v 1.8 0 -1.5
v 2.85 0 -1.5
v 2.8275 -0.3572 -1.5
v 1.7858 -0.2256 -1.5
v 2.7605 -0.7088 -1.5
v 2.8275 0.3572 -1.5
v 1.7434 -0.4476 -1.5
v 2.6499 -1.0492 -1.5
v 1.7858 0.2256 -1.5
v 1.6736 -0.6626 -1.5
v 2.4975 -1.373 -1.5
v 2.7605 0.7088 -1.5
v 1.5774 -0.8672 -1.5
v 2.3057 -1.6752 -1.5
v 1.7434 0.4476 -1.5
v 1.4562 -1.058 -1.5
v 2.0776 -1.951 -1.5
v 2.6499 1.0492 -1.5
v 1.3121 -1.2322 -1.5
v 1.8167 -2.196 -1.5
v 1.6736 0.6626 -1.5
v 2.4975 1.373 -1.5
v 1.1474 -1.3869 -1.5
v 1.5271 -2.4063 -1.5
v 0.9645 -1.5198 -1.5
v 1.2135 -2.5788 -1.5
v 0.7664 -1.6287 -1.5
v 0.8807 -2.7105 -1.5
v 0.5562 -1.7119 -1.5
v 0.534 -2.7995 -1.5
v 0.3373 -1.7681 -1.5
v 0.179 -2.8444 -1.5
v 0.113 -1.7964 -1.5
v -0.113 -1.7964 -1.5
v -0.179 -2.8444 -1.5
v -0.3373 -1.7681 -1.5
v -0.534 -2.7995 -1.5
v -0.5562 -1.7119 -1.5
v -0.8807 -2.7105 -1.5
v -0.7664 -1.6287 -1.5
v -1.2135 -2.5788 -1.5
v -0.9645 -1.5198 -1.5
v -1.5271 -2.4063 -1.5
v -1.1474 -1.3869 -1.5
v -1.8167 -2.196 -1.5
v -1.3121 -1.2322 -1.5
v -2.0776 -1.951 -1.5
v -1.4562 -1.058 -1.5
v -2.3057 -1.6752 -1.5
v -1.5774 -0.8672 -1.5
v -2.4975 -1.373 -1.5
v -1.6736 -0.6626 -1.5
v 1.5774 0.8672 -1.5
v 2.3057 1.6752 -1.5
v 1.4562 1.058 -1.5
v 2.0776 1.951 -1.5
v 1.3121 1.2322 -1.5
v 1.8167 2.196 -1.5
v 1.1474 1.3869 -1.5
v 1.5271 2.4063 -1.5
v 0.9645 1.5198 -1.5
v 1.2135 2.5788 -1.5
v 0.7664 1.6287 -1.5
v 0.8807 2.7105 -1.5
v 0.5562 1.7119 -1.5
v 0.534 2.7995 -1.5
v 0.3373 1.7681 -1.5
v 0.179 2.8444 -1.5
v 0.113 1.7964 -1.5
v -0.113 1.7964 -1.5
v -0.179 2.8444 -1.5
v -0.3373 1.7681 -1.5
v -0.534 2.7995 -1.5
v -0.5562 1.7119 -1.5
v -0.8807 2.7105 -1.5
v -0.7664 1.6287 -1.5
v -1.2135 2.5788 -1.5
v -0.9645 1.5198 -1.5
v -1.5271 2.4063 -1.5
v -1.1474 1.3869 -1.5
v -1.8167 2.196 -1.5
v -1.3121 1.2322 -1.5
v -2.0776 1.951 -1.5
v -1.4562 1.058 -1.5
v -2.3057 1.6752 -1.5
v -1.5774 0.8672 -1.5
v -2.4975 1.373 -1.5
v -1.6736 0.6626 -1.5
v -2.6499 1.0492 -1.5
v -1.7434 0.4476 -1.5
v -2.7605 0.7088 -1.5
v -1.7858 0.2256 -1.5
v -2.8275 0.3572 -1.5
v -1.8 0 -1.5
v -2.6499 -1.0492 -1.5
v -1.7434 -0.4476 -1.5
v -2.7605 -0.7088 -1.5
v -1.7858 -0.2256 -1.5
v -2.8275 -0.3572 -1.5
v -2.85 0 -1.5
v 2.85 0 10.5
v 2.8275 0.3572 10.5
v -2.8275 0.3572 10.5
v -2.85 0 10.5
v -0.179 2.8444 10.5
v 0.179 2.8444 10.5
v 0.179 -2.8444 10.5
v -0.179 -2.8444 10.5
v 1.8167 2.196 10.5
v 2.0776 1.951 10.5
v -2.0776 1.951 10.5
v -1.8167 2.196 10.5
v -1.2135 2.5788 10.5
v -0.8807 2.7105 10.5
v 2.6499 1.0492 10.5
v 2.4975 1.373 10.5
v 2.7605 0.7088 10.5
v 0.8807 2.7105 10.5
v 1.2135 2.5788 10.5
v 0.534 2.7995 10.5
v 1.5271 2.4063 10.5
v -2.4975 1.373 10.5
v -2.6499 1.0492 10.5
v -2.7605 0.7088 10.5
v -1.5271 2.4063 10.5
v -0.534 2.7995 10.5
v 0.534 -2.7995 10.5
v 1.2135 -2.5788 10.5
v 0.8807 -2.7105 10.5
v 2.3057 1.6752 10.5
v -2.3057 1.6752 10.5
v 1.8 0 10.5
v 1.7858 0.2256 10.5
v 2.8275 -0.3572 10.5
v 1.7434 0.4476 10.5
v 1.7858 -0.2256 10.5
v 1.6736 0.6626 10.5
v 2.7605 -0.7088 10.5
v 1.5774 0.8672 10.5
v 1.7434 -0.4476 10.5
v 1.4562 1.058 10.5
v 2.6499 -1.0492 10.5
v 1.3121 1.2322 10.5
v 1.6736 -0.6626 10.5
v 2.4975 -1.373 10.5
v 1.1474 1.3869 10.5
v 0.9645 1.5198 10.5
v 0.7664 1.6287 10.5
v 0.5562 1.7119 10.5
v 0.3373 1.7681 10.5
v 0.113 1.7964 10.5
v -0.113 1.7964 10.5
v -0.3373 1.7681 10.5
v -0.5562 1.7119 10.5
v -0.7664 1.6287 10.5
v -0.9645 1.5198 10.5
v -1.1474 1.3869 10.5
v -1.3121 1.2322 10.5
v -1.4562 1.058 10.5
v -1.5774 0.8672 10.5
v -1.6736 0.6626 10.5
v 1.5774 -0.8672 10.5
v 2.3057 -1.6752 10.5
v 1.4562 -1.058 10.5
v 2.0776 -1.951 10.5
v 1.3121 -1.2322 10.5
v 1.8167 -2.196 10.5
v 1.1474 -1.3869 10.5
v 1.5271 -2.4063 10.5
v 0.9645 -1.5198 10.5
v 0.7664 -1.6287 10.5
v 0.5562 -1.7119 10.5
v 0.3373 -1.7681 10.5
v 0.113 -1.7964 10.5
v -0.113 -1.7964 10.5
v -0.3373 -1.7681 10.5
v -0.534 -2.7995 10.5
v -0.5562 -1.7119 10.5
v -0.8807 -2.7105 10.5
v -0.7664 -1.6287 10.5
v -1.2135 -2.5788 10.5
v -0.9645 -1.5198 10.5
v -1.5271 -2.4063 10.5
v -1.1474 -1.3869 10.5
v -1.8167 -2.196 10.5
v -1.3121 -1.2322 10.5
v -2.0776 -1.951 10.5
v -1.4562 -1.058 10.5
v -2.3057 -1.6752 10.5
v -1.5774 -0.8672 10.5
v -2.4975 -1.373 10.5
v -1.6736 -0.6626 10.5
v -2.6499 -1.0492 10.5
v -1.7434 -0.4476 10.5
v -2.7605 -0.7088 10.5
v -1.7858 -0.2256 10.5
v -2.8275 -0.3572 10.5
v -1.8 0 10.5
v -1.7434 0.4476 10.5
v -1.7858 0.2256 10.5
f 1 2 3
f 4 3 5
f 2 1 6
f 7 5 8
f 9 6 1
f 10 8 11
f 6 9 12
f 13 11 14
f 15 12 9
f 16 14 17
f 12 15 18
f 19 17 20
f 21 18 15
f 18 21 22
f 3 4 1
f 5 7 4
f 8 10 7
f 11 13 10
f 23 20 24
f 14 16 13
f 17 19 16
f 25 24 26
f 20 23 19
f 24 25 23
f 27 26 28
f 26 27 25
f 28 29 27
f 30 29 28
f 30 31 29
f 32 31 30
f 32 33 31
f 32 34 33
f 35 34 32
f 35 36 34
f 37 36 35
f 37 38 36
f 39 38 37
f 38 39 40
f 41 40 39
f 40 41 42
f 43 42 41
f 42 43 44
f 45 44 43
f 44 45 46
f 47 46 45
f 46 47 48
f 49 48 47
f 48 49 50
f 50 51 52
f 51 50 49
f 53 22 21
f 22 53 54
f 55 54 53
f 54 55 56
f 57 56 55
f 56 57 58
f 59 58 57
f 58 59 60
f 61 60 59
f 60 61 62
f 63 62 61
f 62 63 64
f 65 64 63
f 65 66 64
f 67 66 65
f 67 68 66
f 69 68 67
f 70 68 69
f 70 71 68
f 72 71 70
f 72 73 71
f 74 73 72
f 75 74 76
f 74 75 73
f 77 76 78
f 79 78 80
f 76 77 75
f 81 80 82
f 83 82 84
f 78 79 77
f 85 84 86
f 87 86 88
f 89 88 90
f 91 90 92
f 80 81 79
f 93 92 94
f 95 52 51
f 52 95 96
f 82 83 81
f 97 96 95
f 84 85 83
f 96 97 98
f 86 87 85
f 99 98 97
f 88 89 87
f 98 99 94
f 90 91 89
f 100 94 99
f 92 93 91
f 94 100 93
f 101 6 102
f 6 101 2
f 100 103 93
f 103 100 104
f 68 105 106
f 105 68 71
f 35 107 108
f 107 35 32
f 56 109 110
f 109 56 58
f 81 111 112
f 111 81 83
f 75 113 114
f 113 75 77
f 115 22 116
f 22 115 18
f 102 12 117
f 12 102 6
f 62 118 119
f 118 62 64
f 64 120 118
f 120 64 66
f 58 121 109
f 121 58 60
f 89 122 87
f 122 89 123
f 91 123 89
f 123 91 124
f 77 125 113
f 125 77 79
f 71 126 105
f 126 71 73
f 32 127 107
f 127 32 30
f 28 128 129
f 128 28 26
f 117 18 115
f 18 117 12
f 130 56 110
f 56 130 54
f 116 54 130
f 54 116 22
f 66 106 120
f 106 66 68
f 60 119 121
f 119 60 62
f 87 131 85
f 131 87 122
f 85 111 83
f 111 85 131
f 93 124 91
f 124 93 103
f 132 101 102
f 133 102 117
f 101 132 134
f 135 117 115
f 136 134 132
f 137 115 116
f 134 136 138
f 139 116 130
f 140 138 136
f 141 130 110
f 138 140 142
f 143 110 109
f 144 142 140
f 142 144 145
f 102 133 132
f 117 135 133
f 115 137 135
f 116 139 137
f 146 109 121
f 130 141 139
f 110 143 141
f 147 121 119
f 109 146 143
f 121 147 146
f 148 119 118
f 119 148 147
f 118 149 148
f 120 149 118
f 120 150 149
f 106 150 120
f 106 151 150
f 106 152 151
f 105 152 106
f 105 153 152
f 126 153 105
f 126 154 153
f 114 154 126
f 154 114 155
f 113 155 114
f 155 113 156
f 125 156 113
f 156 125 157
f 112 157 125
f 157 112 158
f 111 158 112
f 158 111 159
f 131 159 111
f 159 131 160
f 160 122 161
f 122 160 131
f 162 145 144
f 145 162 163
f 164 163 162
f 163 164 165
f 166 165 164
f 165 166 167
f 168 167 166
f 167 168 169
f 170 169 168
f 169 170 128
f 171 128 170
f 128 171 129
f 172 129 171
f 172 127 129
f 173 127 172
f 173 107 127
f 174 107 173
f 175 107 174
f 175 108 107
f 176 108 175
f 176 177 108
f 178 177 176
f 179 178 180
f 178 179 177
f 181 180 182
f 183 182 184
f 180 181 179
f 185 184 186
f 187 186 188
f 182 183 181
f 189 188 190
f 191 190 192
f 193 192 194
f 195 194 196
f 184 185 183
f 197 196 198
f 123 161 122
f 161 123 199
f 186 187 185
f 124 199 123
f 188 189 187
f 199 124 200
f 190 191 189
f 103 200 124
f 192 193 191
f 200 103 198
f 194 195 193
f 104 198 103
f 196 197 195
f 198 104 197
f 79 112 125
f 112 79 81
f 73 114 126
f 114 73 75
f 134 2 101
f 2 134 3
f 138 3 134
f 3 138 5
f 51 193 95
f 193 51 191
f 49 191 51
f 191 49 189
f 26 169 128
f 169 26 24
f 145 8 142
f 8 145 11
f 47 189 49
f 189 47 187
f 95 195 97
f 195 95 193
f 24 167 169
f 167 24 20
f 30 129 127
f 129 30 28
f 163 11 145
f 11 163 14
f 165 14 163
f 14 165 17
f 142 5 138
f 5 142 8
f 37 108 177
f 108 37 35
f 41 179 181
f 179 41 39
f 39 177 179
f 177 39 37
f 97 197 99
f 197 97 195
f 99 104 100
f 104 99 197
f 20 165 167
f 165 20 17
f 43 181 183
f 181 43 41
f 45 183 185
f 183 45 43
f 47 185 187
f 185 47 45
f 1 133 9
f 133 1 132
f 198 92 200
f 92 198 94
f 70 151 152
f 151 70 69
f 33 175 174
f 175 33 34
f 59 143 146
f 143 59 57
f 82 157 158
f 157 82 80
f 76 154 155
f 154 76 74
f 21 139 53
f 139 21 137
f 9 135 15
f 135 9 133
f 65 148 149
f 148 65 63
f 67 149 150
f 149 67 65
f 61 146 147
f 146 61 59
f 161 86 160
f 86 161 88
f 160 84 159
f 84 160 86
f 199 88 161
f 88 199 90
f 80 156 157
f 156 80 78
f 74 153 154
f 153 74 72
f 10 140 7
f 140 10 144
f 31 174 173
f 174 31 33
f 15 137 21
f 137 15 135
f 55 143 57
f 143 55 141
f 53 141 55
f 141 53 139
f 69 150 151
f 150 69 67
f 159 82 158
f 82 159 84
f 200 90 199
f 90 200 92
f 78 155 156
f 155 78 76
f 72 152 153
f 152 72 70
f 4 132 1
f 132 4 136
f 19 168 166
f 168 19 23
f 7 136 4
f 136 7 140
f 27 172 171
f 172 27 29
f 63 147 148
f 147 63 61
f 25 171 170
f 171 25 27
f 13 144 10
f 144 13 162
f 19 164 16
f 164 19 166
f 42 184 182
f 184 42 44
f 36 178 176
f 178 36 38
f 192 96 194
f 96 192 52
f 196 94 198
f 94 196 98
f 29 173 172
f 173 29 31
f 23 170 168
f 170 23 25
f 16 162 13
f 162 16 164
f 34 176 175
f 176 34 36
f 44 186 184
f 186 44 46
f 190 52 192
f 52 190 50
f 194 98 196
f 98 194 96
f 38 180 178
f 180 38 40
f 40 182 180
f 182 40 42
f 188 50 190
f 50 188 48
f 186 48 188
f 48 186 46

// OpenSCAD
$fn = 50;


difference() {
	union() {
		translate(v = [0, 0, -1.5000000000]) {
			rotate(a = [0, 0, 0]) {
				cylinder(h = 3, r = 1.0000000000);
			}
		}
		translate(v = [0, 0, -1.5000000000]) {
			rotate(a = [0, 0, 0]) {
				cylinder(h = 12, r = 2.8500000000);
			}
		}
	}
	union() {
		translate(v = [0, 0, -125.0000000000]) {
			rotate(a = [0, 0, 0]) {
				cylinder(h = 250, r = 1.8000000000);
			}
		}
	}
}
